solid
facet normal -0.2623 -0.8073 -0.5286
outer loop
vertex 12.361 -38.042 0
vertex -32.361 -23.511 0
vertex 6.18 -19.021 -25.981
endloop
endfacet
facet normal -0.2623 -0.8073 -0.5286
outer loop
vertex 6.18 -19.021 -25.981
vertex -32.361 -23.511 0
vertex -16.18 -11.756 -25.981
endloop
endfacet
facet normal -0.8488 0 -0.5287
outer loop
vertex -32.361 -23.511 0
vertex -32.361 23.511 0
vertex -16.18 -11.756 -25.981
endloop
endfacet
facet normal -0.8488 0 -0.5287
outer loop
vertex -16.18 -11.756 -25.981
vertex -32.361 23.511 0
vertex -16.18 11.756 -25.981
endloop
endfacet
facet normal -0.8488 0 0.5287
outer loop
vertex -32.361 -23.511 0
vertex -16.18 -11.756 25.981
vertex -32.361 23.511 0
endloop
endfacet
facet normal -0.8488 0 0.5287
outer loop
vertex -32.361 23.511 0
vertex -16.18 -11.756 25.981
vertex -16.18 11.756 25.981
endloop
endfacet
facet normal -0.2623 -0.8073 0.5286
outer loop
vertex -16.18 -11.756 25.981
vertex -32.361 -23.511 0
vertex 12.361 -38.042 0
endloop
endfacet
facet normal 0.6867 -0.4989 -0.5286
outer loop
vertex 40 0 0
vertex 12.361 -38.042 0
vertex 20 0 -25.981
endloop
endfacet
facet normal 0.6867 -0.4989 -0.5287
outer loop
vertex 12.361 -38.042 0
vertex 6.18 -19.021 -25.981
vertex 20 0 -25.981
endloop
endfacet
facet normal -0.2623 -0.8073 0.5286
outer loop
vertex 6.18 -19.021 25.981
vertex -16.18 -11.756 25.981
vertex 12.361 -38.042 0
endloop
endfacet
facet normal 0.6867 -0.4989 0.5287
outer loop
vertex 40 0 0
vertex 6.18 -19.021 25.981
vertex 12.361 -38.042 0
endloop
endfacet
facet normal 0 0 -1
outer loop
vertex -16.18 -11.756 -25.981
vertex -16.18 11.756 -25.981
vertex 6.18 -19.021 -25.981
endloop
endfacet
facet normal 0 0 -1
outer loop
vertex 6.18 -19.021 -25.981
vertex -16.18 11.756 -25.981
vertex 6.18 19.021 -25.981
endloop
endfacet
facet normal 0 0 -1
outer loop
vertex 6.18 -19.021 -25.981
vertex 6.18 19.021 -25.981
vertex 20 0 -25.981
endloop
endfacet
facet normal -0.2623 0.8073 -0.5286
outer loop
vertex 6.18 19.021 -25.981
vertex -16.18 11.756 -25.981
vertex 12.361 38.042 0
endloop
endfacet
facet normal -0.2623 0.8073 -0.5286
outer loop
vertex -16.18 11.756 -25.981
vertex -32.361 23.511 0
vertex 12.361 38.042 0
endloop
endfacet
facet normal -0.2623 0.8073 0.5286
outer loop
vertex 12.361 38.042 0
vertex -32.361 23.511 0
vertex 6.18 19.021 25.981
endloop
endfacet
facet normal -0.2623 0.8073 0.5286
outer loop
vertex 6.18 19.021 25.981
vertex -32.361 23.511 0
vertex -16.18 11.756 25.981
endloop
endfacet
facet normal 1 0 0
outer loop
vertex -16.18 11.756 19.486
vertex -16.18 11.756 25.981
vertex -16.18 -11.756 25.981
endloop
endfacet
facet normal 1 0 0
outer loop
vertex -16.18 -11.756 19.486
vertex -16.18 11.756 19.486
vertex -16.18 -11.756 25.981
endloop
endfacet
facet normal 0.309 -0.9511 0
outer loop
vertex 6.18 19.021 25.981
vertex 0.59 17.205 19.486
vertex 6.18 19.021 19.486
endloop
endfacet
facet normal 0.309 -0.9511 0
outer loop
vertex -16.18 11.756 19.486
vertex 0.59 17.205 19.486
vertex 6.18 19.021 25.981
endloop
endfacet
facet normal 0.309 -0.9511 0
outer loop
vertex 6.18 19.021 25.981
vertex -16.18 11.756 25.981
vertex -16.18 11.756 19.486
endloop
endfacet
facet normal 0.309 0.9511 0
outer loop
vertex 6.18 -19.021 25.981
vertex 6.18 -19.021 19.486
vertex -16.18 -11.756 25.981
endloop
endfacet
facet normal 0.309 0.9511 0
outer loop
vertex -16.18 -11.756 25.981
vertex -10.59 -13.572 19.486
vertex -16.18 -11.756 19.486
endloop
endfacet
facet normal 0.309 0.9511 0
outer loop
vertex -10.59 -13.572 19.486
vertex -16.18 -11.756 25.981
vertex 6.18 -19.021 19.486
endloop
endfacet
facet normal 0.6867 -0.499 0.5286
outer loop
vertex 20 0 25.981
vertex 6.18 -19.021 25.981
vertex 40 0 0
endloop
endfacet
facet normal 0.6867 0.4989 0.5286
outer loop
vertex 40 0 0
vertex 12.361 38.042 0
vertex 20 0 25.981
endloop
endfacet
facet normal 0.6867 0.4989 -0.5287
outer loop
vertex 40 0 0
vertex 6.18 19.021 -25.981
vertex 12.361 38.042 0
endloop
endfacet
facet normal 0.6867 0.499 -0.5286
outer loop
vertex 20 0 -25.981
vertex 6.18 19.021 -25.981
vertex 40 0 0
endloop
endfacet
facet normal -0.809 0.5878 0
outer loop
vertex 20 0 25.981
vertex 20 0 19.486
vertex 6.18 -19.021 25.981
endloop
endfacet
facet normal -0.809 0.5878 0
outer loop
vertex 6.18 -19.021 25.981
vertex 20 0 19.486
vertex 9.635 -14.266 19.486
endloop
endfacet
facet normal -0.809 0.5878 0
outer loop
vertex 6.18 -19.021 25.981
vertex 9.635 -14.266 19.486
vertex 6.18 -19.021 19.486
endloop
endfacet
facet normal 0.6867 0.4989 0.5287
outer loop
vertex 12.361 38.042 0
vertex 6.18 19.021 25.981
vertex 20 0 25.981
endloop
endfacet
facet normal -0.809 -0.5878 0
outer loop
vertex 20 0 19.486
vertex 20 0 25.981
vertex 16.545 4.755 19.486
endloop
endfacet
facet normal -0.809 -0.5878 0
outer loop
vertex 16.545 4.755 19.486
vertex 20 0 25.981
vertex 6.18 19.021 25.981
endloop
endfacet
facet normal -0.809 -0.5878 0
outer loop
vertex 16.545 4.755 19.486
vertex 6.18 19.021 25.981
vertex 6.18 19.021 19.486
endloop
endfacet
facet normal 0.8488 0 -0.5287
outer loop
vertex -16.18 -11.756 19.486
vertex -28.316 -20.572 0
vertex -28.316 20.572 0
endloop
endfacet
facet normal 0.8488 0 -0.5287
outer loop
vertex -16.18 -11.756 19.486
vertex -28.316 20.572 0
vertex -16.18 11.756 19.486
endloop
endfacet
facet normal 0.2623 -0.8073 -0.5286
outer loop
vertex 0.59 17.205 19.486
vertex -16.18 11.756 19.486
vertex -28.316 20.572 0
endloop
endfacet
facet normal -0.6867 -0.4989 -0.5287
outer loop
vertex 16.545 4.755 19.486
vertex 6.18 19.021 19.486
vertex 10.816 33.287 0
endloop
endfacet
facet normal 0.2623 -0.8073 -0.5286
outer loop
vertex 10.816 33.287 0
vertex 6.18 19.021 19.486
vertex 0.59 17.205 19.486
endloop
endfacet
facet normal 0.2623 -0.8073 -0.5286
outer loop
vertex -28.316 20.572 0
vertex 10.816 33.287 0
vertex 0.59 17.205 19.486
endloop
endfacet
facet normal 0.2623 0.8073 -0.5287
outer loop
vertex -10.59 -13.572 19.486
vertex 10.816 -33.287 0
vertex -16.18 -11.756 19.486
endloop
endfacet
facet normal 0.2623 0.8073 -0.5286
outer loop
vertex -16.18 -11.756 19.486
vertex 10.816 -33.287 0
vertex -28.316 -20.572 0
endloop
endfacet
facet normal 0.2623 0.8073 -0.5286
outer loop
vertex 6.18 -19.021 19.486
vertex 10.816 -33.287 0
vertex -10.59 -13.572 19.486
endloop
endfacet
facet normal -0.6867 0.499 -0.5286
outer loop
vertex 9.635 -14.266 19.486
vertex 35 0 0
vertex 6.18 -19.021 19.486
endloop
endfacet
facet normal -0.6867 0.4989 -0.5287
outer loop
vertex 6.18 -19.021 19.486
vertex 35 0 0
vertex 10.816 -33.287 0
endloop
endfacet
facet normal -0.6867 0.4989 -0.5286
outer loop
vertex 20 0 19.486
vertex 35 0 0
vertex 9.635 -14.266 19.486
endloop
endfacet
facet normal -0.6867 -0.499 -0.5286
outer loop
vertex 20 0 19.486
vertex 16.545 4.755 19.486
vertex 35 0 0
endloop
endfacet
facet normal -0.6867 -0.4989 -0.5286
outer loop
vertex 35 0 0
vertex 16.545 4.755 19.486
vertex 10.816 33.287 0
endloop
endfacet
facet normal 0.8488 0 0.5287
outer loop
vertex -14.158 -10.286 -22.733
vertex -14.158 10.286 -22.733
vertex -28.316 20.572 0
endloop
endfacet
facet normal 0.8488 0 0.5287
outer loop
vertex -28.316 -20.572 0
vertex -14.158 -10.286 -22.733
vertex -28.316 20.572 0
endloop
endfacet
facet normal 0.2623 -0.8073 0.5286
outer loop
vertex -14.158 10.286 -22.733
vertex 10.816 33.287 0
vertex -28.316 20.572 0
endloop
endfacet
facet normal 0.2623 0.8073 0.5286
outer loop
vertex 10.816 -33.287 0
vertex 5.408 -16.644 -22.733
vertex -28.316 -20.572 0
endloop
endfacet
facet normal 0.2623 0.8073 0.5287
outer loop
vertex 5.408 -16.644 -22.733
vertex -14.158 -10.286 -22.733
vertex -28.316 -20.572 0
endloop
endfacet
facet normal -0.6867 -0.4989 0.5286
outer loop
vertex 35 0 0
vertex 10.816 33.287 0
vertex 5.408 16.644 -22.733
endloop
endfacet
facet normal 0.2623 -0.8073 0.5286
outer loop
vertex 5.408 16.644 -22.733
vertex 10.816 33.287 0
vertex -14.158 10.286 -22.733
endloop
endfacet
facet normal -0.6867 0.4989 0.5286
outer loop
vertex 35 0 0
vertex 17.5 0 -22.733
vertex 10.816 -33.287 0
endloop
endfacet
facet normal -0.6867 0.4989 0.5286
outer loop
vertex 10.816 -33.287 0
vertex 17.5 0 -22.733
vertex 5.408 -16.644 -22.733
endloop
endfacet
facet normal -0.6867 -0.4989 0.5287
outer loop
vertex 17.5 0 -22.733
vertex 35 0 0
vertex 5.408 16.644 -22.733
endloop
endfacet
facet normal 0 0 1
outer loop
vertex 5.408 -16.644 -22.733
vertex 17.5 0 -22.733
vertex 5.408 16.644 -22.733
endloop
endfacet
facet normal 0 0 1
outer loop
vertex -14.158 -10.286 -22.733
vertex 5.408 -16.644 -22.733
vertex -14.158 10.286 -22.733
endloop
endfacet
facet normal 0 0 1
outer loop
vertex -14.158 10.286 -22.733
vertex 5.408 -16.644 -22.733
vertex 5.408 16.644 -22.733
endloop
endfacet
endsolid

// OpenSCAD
s=40;
d=5;
$fn=5;
difference() {
scale([1,1,.75]) sphere(r=s);
translate([0,0,(-sqrt(3/4)*s + 2*d)*.75]) cylinder(d=s,h=2*s);
scale([1,1,.75]) sphere(r=s-d);
};
*cube([2*s,2*s,2*s],center=true);
